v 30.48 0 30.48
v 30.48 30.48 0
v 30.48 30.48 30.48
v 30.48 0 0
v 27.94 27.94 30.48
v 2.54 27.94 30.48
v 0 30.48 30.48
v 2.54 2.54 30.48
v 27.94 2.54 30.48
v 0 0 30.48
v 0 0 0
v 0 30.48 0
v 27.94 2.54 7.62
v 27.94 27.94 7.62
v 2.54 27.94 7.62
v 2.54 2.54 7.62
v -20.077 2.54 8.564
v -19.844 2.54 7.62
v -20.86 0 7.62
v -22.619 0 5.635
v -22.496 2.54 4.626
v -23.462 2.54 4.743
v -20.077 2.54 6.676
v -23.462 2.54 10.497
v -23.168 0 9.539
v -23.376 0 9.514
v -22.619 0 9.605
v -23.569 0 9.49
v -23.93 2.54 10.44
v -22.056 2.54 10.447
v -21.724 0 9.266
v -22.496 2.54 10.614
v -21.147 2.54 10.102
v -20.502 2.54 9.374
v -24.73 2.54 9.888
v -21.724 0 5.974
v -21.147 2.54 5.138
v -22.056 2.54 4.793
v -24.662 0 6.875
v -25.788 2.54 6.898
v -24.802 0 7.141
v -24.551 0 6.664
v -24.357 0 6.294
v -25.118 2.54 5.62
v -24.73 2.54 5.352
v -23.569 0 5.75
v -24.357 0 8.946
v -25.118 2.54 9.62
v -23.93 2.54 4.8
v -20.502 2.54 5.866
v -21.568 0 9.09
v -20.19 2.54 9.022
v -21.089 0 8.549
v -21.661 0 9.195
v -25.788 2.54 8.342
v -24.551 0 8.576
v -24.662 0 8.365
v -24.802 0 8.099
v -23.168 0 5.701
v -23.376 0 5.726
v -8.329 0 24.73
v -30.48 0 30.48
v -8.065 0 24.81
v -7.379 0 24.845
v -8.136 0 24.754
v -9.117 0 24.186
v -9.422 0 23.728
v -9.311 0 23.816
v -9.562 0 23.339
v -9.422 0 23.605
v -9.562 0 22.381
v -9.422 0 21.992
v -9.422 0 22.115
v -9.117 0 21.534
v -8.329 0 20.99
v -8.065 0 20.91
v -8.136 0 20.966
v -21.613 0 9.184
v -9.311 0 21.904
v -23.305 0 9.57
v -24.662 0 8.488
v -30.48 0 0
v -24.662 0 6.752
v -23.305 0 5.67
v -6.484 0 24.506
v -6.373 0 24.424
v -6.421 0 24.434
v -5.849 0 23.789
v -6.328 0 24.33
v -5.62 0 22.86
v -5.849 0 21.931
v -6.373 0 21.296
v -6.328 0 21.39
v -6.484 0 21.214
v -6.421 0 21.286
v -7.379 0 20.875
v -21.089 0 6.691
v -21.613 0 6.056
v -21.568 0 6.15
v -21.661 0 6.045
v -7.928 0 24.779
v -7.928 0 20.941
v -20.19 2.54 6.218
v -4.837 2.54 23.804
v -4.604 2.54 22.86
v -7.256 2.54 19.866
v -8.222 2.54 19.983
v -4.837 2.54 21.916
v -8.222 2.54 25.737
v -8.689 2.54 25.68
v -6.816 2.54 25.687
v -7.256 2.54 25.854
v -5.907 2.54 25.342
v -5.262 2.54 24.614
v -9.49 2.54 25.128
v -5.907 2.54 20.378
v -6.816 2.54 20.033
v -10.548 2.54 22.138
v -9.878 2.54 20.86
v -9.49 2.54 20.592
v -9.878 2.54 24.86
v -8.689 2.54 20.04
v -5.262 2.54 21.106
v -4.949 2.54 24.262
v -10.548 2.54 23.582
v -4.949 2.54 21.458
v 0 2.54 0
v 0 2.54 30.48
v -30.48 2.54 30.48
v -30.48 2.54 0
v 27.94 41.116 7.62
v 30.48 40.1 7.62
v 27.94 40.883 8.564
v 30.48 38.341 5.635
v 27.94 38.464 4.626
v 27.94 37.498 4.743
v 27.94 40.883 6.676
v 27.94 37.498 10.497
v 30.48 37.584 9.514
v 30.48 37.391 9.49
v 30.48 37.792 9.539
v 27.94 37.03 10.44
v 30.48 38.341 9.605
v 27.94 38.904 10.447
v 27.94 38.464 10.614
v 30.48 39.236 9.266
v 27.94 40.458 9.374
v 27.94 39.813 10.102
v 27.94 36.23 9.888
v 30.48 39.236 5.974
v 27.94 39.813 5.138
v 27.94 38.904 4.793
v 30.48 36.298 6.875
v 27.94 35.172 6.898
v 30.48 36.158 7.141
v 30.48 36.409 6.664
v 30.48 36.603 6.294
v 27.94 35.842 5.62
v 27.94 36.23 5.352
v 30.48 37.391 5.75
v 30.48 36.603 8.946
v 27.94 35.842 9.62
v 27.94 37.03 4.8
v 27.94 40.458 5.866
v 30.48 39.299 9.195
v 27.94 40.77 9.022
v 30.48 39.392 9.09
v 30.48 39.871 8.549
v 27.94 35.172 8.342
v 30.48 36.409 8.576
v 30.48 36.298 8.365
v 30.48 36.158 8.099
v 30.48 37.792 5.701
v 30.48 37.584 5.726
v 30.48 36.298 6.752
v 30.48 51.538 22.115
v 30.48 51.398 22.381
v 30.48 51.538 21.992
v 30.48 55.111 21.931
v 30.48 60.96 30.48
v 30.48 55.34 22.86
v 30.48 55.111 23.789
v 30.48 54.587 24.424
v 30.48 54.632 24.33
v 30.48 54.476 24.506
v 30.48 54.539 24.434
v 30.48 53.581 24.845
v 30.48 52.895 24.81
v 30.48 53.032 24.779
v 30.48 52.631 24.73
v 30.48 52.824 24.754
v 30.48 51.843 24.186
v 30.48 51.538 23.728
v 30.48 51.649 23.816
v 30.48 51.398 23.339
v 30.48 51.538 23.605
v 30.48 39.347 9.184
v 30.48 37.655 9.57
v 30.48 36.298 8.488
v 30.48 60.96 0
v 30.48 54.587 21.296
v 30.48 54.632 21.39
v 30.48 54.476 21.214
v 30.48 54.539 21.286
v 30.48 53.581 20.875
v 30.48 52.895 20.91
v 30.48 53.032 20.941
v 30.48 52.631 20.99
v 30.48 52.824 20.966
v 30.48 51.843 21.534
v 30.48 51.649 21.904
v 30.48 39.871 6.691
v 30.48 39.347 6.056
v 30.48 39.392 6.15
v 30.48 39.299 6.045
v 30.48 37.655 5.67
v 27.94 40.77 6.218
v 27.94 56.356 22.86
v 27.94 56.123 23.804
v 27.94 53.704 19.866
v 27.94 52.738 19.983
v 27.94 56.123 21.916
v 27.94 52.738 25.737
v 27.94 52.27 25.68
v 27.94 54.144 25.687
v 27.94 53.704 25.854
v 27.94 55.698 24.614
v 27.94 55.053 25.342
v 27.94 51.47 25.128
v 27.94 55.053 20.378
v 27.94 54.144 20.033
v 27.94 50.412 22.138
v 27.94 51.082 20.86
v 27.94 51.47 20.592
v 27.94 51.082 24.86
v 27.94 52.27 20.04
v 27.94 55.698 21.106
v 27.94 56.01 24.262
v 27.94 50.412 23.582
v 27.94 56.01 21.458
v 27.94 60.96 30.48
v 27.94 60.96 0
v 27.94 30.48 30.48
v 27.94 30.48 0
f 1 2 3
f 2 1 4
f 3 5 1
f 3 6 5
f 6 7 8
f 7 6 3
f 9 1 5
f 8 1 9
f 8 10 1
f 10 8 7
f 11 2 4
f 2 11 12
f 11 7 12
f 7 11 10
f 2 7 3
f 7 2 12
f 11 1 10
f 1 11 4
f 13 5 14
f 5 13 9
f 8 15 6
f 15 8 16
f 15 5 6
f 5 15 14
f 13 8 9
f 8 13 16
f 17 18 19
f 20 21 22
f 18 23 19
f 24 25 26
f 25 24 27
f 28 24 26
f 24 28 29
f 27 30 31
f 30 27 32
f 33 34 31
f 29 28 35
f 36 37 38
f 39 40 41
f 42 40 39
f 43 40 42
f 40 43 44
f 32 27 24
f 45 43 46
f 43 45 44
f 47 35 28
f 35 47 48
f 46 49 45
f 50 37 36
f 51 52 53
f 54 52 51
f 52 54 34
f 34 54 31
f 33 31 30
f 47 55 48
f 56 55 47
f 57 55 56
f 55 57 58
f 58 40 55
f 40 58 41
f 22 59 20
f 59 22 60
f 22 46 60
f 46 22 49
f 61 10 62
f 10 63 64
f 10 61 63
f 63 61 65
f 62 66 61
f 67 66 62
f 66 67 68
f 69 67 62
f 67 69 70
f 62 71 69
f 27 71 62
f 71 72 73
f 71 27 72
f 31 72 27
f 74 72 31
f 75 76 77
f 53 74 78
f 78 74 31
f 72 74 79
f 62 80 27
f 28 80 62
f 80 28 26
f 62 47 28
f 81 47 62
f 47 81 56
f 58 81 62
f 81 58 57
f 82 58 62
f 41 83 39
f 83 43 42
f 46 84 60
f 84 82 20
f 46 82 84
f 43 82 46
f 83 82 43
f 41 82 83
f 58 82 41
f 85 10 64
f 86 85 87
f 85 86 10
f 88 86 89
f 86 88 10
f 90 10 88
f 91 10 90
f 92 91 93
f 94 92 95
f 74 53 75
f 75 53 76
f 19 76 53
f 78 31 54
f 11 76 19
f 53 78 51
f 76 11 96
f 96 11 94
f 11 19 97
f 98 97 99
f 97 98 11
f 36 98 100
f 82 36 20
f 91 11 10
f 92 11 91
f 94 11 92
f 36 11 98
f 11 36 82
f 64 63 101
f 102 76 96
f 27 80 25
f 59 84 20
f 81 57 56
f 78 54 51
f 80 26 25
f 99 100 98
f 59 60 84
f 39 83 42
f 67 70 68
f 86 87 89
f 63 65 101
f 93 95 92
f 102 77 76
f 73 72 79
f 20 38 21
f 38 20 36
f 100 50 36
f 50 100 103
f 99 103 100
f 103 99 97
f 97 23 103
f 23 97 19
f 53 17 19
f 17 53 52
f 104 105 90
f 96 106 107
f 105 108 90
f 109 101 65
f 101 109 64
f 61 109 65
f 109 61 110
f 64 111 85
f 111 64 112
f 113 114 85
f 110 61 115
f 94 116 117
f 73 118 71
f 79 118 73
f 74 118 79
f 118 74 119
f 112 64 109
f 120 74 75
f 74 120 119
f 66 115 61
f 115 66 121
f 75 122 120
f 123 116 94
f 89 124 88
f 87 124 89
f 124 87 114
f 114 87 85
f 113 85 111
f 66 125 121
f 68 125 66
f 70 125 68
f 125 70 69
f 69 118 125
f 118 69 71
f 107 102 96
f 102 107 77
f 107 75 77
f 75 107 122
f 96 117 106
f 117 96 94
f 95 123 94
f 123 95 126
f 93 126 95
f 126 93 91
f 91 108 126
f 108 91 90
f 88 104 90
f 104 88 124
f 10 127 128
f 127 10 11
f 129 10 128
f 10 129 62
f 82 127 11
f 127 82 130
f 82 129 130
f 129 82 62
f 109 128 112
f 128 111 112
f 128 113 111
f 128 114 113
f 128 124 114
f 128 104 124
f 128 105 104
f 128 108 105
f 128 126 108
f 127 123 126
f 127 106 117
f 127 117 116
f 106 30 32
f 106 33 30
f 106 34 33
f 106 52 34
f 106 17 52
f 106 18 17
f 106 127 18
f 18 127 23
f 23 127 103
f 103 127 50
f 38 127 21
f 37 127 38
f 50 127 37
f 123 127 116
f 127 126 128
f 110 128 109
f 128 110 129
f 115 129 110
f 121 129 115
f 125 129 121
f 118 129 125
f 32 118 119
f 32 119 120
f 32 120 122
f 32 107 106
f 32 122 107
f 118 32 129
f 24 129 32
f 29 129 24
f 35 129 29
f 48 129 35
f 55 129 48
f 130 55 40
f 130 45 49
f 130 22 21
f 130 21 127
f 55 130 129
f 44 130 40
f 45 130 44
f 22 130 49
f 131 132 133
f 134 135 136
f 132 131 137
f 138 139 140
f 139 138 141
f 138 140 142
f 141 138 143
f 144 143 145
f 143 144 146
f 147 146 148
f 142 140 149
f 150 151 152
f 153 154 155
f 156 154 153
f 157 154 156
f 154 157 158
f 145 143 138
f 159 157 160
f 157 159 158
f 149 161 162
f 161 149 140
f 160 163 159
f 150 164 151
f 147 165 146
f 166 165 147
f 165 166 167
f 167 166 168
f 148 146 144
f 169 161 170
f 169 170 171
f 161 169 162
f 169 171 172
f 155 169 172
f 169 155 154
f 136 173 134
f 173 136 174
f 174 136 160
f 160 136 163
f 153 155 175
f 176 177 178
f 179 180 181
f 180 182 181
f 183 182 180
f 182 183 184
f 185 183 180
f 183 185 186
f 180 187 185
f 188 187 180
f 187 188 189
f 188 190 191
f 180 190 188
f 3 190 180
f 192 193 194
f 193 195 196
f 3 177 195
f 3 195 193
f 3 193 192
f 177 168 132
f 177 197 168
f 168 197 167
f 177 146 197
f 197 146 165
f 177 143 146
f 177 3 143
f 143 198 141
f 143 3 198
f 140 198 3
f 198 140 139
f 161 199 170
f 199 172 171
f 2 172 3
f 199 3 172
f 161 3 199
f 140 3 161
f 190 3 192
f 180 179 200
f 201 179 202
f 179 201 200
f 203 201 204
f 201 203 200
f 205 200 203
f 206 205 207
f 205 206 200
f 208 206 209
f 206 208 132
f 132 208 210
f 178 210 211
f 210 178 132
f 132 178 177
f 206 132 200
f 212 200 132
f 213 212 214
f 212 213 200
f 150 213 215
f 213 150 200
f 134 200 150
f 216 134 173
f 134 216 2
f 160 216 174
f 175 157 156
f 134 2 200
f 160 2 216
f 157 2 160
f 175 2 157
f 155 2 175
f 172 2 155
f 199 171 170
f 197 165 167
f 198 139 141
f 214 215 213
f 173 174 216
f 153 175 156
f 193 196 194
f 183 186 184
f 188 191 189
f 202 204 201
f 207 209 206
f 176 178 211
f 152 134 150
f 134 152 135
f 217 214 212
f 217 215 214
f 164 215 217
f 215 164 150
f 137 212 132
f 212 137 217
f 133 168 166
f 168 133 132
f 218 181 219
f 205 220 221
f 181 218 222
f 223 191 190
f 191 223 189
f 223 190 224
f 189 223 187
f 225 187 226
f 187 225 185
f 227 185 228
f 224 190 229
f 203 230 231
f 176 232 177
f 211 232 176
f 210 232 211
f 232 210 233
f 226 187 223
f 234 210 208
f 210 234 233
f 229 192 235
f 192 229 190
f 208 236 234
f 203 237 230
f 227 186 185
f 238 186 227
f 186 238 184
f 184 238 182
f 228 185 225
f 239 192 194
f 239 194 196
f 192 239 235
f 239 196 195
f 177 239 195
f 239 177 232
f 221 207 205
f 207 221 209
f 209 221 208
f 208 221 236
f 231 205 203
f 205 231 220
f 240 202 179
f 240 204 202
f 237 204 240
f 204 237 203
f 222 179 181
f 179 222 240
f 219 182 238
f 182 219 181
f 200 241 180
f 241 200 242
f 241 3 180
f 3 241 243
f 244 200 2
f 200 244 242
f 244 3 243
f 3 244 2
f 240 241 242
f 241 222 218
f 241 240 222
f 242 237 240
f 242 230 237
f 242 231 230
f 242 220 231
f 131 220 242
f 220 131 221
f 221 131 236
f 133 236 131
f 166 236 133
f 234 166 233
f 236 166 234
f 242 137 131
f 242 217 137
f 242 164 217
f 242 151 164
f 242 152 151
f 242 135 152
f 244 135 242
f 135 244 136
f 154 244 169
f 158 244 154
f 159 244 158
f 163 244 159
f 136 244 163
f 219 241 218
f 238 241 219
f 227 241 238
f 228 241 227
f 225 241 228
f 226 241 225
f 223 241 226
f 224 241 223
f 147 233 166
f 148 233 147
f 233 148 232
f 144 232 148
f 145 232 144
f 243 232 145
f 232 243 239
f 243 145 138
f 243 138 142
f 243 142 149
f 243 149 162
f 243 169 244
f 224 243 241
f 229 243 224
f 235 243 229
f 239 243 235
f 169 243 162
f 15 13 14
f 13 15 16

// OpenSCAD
rod = 25.4;

//screw
screw1 = 8; //width of the screw head
screw2 = 4; //width of the screw body
screwhead = 5; //height of the screw head
screwlength = 10; //length of the screw body

module screw() {
    color( [0, 0, 1] ) {
        cylinder( d1 = screw1, d2 = screw2, h = screwhead);
        translate([0, 0, screwhead]) cylinder( d=screw2, h = screwlength);
    }
}

module platform() {
    difference() {
        cube( [1.2*rod, 0.1*rod, 1.2*rod] );
    
        translate([ 0.3*rod, screwhead, 0.3*rod])
            rotate([ 90, 0, 0] )
                screw();
        
        translate([ 0.9*rod, screwhead, 0.9*rod])
            rotate([ 90, 0, 0] )
                screw();
    }

}

module center_mount() {
    difference() {
        cube ( [1.2*rod, 1.2*rod, 1.2*rod] );
        translate([0.1*rod, 0.1*rod, -1])
            cube ( [ rod, rod, 2*rod] );
    }
}

module cap() {
    cube( [1.2 * rod, 1.2*rod, 0.3* rod]);
}


center_mount();
cap();
translate([-1.2*rod, 0, 0])
    platform();
translate([1.2*rod, 1.2*rod, 0])
    rotate([0, 0, 90]) platform();
